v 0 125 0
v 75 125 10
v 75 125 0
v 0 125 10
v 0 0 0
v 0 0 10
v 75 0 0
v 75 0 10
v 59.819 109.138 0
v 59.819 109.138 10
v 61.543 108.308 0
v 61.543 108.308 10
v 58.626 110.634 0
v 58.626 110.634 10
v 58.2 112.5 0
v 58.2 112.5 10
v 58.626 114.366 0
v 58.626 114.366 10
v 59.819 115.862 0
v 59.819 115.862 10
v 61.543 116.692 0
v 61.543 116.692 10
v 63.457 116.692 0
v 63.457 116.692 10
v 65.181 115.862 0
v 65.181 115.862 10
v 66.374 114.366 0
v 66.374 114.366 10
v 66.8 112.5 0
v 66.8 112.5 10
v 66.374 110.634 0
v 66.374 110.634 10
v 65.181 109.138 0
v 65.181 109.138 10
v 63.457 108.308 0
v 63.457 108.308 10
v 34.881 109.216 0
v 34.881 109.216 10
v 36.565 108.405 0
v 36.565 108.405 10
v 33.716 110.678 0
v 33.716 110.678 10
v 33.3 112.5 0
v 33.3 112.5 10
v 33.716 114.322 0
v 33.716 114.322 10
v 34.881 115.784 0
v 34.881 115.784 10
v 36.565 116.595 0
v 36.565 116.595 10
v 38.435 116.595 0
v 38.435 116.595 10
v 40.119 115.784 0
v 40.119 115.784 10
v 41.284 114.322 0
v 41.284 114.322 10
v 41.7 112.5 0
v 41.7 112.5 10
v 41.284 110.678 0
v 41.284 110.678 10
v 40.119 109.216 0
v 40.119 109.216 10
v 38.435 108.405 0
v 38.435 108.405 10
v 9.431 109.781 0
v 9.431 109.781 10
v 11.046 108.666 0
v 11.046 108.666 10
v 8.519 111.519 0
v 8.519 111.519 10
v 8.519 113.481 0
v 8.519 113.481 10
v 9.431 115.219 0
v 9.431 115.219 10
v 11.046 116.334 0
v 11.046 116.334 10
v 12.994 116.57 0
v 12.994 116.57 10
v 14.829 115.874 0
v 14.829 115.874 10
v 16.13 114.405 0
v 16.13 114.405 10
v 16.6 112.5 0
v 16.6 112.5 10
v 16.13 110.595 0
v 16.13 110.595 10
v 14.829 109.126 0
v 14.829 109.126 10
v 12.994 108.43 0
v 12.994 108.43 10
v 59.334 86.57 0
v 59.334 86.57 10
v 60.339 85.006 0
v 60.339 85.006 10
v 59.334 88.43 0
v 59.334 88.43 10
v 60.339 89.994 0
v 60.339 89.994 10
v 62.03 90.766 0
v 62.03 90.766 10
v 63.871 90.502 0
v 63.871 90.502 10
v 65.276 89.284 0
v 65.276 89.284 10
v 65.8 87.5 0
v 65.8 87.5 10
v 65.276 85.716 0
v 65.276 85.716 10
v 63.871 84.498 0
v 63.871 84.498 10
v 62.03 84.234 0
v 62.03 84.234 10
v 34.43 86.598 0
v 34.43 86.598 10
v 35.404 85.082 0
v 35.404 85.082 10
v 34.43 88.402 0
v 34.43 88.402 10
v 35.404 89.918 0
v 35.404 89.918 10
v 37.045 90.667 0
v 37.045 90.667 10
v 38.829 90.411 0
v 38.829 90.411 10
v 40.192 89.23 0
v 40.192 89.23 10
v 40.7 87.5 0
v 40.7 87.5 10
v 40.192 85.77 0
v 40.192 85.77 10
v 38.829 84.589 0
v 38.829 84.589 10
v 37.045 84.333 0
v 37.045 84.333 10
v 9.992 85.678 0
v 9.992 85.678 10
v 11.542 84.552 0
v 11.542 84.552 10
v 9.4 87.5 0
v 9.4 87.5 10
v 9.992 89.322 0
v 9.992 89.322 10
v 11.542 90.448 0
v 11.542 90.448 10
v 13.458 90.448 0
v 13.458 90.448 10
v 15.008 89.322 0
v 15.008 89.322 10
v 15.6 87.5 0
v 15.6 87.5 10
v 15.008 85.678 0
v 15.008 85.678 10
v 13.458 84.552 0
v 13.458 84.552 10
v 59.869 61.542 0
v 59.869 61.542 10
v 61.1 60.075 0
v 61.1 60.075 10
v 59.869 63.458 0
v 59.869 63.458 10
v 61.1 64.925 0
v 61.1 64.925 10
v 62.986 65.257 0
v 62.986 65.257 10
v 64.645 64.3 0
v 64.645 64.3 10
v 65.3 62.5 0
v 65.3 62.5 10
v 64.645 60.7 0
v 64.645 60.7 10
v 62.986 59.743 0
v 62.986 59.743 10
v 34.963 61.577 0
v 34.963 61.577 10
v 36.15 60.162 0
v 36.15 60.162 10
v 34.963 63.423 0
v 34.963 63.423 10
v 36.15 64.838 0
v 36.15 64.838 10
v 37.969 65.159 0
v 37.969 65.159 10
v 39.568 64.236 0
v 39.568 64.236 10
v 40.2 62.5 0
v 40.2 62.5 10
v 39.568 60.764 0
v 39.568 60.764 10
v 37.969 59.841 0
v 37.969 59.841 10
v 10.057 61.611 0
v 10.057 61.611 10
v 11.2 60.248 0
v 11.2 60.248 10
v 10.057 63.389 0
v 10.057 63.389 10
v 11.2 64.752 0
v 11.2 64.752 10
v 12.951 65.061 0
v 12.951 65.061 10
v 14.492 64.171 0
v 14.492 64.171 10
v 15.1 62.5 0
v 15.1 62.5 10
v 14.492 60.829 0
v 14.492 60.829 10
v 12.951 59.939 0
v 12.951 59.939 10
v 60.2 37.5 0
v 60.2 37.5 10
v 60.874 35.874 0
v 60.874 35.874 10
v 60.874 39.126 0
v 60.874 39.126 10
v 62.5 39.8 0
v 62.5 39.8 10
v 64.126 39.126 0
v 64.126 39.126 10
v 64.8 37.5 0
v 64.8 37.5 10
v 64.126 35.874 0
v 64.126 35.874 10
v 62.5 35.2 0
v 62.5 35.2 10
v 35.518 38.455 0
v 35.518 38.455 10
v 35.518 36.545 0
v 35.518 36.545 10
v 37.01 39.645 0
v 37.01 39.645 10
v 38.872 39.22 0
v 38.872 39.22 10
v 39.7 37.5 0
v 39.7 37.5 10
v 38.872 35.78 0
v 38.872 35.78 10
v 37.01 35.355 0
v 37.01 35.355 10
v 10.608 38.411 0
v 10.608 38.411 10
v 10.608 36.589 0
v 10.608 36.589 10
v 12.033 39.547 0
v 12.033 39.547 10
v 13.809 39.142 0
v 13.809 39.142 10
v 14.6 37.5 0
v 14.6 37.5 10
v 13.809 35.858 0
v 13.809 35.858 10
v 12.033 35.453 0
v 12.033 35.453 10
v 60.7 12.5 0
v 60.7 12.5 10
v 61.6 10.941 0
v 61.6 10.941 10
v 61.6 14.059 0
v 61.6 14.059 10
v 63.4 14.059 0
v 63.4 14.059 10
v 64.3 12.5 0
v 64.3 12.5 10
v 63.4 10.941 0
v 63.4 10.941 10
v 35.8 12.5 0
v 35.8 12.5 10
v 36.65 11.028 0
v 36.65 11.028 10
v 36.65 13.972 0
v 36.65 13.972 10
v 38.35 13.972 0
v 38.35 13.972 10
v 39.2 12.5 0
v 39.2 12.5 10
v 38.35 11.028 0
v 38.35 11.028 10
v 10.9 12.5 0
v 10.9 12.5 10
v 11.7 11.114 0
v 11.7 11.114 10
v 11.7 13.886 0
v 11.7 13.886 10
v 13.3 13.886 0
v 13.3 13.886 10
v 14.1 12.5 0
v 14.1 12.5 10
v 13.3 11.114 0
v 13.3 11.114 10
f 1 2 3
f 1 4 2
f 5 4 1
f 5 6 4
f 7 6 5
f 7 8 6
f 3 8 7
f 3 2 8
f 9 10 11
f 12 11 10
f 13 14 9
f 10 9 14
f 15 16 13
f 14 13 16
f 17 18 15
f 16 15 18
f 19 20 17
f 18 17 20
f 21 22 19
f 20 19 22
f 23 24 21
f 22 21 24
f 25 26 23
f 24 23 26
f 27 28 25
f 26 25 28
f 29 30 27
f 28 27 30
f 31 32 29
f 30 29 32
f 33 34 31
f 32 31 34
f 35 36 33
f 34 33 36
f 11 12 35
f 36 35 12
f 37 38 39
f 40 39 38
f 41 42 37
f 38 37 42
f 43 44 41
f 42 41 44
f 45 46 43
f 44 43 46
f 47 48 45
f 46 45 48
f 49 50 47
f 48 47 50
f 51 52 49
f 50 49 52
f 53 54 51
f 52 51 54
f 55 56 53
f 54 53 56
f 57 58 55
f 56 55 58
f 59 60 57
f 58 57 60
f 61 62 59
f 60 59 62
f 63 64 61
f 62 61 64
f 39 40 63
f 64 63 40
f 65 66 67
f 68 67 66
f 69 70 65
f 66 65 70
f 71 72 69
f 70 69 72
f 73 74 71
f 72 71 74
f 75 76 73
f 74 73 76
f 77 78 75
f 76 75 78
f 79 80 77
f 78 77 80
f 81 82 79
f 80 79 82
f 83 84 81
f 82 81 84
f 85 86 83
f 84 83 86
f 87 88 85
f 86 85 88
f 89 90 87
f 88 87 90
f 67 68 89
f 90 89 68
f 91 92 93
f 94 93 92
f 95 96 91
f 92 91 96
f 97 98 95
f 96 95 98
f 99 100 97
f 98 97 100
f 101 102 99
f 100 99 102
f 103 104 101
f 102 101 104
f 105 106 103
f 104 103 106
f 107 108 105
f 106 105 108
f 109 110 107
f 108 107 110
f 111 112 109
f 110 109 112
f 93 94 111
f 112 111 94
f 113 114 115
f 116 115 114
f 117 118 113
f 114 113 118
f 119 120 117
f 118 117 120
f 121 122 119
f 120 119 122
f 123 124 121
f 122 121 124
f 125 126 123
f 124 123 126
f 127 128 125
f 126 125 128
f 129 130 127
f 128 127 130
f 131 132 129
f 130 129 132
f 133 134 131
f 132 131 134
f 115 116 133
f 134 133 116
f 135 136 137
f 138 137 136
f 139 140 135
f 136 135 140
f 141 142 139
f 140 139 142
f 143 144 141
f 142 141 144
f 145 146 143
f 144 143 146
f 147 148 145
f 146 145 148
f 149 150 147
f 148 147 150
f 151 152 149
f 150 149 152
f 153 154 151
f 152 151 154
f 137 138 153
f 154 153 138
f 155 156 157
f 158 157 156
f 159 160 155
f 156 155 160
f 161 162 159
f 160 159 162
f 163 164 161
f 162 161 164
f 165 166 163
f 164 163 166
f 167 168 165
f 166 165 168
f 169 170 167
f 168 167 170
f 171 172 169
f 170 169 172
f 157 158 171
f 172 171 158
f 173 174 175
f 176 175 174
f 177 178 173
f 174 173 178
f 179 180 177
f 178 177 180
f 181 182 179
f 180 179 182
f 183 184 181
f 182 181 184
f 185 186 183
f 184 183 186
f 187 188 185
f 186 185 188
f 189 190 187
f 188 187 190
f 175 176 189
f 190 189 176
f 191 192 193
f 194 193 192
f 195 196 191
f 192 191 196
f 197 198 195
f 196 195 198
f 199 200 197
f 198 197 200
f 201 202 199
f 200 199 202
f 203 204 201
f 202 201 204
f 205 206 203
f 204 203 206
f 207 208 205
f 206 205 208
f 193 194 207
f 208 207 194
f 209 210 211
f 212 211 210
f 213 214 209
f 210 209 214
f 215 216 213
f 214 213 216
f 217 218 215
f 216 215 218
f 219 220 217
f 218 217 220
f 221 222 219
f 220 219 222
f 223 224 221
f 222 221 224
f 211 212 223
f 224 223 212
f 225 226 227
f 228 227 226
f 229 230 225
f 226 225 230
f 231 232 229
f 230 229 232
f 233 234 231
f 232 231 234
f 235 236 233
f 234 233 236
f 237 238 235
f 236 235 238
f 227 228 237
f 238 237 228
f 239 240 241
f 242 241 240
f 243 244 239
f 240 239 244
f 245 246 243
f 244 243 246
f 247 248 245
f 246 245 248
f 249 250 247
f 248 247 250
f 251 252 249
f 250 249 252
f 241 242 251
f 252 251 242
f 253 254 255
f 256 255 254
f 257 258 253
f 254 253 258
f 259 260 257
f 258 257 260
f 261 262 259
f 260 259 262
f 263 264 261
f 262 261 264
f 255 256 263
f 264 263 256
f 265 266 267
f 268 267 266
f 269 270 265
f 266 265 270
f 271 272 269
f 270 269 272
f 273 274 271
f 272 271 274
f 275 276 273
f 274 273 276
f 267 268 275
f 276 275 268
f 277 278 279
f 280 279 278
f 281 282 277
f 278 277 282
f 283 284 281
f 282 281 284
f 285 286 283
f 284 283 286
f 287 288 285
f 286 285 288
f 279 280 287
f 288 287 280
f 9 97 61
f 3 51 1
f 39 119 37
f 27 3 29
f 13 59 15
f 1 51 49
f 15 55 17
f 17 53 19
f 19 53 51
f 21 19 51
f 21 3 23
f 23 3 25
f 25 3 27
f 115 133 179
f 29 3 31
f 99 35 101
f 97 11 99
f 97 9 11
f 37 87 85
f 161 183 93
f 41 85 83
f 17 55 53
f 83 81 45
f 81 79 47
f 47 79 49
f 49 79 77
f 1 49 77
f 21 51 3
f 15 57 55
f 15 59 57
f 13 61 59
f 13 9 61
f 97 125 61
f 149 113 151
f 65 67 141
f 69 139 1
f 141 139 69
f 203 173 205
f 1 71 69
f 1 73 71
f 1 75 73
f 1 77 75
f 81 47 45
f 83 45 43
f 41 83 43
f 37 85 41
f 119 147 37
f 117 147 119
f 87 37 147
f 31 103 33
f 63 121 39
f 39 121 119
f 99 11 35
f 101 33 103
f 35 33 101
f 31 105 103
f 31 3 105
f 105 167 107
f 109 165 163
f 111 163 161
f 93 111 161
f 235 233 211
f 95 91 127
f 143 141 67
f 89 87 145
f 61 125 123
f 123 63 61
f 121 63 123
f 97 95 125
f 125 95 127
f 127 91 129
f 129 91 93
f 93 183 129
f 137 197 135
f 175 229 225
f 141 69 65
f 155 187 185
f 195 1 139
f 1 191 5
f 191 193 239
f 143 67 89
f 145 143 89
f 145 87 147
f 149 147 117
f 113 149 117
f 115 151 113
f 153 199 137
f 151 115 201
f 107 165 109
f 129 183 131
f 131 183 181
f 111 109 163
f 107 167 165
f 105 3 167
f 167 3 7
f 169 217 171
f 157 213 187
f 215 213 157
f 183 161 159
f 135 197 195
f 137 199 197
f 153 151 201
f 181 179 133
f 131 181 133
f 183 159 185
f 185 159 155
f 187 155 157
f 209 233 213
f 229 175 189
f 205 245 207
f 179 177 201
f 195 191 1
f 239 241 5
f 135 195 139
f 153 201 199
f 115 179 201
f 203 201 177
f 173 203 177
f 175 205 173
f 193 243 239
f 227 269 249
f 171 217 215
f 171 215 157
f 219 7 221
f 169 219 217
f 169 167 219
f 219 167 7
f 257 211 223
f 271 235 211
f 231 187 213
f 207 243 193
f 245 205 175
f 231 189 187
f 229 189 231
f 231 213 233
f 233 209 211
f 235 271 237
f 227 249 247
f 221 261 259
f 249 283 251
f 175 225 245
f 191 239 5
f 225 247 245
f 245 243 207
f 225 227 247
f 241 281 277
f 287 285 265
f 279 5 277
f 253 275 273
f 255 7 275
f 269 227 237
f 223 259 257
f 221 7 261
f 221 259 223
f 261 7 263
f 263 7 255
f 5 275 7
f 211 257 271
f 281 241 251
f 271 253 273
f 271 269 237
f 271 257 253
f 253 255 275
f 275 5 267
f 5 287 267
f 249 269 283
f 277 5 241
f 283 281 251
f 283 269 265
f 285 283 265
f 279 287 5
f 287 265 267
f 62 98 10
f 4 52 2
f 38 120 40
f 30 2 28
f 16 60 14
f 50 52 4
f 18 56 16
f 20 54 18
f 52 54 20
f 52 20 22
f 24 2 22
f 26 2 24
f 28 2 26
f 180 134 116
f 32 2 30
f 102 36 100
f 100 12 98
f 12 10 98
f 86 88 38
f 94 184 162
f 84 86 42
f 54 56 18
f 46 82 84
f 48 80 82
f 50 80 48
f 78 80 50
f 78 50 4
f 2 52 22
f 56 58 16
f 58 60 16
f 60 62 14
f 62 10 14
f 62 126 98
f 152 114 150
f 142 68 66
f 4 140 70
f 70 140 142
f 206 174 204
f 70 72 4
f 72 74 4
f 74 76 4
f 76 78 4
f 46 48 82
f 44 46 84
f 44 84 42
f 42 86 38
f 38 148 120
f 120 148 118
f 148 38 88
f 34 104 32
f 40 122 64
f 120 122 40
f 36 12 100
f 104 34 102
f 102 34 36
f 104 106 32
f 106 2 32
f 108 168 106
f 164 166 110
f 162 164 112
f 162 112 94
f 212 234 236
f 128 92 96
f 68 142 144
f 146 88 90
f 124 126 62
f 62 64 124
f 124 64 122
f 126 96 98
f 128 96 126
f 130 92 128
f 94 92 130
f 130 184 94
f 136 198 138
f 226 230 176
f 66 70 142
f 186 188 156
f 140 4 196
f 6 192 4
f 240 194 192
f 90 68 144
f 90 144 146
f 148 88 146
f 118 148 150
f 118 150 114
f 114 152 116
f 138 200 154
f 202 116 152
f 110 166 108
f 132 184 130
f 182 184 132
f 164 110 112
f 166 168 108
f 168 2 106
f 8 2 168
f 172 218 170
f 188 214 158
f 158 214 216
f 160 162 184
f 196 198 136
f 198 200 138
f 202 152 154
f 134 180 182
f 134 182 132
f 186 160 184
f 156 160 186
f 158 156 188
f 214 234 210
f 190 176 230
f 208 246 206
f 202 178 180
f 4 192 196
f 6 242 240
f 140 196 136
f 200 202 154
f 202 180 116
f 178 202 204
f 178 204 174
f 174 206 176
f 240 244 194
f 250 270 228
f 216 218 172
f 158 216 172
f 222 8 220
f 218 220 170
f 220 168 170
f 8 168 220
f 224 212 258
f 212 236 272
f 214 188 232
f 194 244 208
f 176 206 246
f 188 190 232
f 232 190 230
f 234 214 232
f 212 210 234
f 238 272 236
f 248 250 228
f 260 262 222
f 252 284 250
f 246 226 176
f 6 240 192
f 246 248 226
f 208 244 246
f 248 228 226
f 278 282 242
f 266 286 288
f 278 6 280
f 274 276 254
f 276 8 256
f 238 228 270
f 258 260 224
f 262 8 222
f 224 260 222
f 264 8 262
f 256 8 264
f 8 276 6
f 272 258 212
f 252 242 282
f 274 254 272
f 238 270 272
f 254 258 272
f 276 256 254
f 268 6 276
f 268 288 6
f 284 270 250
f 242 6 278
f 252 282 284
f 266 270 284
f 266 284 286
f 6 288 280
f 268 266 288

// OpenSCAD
shaft = [3.0, 4.0, 5.0, 6.0, 8.0];
fudge = [0.2, 0.4, 0.6];

spacing = 25;
length = len(fudge)*spacing;
width = len(shaft)*spacing;
thickness = 10;

module holes(shaft_d) {
    echo(shaft_d);
    for( i = [0 : len(fudge)-1] )
       translate([spacing/2+i*spacing, 0, 0]) 
           circle(d=shaft_d+fudge[i]);
}

linear_extrude(thickness)
    difference() {
        square([length, width]);
        for( i = [0 : len(shaft)-1] ) {
            translate([0, spacing/2+i*spacing, 0])
                holes(shaft[i]);
        }
    }
